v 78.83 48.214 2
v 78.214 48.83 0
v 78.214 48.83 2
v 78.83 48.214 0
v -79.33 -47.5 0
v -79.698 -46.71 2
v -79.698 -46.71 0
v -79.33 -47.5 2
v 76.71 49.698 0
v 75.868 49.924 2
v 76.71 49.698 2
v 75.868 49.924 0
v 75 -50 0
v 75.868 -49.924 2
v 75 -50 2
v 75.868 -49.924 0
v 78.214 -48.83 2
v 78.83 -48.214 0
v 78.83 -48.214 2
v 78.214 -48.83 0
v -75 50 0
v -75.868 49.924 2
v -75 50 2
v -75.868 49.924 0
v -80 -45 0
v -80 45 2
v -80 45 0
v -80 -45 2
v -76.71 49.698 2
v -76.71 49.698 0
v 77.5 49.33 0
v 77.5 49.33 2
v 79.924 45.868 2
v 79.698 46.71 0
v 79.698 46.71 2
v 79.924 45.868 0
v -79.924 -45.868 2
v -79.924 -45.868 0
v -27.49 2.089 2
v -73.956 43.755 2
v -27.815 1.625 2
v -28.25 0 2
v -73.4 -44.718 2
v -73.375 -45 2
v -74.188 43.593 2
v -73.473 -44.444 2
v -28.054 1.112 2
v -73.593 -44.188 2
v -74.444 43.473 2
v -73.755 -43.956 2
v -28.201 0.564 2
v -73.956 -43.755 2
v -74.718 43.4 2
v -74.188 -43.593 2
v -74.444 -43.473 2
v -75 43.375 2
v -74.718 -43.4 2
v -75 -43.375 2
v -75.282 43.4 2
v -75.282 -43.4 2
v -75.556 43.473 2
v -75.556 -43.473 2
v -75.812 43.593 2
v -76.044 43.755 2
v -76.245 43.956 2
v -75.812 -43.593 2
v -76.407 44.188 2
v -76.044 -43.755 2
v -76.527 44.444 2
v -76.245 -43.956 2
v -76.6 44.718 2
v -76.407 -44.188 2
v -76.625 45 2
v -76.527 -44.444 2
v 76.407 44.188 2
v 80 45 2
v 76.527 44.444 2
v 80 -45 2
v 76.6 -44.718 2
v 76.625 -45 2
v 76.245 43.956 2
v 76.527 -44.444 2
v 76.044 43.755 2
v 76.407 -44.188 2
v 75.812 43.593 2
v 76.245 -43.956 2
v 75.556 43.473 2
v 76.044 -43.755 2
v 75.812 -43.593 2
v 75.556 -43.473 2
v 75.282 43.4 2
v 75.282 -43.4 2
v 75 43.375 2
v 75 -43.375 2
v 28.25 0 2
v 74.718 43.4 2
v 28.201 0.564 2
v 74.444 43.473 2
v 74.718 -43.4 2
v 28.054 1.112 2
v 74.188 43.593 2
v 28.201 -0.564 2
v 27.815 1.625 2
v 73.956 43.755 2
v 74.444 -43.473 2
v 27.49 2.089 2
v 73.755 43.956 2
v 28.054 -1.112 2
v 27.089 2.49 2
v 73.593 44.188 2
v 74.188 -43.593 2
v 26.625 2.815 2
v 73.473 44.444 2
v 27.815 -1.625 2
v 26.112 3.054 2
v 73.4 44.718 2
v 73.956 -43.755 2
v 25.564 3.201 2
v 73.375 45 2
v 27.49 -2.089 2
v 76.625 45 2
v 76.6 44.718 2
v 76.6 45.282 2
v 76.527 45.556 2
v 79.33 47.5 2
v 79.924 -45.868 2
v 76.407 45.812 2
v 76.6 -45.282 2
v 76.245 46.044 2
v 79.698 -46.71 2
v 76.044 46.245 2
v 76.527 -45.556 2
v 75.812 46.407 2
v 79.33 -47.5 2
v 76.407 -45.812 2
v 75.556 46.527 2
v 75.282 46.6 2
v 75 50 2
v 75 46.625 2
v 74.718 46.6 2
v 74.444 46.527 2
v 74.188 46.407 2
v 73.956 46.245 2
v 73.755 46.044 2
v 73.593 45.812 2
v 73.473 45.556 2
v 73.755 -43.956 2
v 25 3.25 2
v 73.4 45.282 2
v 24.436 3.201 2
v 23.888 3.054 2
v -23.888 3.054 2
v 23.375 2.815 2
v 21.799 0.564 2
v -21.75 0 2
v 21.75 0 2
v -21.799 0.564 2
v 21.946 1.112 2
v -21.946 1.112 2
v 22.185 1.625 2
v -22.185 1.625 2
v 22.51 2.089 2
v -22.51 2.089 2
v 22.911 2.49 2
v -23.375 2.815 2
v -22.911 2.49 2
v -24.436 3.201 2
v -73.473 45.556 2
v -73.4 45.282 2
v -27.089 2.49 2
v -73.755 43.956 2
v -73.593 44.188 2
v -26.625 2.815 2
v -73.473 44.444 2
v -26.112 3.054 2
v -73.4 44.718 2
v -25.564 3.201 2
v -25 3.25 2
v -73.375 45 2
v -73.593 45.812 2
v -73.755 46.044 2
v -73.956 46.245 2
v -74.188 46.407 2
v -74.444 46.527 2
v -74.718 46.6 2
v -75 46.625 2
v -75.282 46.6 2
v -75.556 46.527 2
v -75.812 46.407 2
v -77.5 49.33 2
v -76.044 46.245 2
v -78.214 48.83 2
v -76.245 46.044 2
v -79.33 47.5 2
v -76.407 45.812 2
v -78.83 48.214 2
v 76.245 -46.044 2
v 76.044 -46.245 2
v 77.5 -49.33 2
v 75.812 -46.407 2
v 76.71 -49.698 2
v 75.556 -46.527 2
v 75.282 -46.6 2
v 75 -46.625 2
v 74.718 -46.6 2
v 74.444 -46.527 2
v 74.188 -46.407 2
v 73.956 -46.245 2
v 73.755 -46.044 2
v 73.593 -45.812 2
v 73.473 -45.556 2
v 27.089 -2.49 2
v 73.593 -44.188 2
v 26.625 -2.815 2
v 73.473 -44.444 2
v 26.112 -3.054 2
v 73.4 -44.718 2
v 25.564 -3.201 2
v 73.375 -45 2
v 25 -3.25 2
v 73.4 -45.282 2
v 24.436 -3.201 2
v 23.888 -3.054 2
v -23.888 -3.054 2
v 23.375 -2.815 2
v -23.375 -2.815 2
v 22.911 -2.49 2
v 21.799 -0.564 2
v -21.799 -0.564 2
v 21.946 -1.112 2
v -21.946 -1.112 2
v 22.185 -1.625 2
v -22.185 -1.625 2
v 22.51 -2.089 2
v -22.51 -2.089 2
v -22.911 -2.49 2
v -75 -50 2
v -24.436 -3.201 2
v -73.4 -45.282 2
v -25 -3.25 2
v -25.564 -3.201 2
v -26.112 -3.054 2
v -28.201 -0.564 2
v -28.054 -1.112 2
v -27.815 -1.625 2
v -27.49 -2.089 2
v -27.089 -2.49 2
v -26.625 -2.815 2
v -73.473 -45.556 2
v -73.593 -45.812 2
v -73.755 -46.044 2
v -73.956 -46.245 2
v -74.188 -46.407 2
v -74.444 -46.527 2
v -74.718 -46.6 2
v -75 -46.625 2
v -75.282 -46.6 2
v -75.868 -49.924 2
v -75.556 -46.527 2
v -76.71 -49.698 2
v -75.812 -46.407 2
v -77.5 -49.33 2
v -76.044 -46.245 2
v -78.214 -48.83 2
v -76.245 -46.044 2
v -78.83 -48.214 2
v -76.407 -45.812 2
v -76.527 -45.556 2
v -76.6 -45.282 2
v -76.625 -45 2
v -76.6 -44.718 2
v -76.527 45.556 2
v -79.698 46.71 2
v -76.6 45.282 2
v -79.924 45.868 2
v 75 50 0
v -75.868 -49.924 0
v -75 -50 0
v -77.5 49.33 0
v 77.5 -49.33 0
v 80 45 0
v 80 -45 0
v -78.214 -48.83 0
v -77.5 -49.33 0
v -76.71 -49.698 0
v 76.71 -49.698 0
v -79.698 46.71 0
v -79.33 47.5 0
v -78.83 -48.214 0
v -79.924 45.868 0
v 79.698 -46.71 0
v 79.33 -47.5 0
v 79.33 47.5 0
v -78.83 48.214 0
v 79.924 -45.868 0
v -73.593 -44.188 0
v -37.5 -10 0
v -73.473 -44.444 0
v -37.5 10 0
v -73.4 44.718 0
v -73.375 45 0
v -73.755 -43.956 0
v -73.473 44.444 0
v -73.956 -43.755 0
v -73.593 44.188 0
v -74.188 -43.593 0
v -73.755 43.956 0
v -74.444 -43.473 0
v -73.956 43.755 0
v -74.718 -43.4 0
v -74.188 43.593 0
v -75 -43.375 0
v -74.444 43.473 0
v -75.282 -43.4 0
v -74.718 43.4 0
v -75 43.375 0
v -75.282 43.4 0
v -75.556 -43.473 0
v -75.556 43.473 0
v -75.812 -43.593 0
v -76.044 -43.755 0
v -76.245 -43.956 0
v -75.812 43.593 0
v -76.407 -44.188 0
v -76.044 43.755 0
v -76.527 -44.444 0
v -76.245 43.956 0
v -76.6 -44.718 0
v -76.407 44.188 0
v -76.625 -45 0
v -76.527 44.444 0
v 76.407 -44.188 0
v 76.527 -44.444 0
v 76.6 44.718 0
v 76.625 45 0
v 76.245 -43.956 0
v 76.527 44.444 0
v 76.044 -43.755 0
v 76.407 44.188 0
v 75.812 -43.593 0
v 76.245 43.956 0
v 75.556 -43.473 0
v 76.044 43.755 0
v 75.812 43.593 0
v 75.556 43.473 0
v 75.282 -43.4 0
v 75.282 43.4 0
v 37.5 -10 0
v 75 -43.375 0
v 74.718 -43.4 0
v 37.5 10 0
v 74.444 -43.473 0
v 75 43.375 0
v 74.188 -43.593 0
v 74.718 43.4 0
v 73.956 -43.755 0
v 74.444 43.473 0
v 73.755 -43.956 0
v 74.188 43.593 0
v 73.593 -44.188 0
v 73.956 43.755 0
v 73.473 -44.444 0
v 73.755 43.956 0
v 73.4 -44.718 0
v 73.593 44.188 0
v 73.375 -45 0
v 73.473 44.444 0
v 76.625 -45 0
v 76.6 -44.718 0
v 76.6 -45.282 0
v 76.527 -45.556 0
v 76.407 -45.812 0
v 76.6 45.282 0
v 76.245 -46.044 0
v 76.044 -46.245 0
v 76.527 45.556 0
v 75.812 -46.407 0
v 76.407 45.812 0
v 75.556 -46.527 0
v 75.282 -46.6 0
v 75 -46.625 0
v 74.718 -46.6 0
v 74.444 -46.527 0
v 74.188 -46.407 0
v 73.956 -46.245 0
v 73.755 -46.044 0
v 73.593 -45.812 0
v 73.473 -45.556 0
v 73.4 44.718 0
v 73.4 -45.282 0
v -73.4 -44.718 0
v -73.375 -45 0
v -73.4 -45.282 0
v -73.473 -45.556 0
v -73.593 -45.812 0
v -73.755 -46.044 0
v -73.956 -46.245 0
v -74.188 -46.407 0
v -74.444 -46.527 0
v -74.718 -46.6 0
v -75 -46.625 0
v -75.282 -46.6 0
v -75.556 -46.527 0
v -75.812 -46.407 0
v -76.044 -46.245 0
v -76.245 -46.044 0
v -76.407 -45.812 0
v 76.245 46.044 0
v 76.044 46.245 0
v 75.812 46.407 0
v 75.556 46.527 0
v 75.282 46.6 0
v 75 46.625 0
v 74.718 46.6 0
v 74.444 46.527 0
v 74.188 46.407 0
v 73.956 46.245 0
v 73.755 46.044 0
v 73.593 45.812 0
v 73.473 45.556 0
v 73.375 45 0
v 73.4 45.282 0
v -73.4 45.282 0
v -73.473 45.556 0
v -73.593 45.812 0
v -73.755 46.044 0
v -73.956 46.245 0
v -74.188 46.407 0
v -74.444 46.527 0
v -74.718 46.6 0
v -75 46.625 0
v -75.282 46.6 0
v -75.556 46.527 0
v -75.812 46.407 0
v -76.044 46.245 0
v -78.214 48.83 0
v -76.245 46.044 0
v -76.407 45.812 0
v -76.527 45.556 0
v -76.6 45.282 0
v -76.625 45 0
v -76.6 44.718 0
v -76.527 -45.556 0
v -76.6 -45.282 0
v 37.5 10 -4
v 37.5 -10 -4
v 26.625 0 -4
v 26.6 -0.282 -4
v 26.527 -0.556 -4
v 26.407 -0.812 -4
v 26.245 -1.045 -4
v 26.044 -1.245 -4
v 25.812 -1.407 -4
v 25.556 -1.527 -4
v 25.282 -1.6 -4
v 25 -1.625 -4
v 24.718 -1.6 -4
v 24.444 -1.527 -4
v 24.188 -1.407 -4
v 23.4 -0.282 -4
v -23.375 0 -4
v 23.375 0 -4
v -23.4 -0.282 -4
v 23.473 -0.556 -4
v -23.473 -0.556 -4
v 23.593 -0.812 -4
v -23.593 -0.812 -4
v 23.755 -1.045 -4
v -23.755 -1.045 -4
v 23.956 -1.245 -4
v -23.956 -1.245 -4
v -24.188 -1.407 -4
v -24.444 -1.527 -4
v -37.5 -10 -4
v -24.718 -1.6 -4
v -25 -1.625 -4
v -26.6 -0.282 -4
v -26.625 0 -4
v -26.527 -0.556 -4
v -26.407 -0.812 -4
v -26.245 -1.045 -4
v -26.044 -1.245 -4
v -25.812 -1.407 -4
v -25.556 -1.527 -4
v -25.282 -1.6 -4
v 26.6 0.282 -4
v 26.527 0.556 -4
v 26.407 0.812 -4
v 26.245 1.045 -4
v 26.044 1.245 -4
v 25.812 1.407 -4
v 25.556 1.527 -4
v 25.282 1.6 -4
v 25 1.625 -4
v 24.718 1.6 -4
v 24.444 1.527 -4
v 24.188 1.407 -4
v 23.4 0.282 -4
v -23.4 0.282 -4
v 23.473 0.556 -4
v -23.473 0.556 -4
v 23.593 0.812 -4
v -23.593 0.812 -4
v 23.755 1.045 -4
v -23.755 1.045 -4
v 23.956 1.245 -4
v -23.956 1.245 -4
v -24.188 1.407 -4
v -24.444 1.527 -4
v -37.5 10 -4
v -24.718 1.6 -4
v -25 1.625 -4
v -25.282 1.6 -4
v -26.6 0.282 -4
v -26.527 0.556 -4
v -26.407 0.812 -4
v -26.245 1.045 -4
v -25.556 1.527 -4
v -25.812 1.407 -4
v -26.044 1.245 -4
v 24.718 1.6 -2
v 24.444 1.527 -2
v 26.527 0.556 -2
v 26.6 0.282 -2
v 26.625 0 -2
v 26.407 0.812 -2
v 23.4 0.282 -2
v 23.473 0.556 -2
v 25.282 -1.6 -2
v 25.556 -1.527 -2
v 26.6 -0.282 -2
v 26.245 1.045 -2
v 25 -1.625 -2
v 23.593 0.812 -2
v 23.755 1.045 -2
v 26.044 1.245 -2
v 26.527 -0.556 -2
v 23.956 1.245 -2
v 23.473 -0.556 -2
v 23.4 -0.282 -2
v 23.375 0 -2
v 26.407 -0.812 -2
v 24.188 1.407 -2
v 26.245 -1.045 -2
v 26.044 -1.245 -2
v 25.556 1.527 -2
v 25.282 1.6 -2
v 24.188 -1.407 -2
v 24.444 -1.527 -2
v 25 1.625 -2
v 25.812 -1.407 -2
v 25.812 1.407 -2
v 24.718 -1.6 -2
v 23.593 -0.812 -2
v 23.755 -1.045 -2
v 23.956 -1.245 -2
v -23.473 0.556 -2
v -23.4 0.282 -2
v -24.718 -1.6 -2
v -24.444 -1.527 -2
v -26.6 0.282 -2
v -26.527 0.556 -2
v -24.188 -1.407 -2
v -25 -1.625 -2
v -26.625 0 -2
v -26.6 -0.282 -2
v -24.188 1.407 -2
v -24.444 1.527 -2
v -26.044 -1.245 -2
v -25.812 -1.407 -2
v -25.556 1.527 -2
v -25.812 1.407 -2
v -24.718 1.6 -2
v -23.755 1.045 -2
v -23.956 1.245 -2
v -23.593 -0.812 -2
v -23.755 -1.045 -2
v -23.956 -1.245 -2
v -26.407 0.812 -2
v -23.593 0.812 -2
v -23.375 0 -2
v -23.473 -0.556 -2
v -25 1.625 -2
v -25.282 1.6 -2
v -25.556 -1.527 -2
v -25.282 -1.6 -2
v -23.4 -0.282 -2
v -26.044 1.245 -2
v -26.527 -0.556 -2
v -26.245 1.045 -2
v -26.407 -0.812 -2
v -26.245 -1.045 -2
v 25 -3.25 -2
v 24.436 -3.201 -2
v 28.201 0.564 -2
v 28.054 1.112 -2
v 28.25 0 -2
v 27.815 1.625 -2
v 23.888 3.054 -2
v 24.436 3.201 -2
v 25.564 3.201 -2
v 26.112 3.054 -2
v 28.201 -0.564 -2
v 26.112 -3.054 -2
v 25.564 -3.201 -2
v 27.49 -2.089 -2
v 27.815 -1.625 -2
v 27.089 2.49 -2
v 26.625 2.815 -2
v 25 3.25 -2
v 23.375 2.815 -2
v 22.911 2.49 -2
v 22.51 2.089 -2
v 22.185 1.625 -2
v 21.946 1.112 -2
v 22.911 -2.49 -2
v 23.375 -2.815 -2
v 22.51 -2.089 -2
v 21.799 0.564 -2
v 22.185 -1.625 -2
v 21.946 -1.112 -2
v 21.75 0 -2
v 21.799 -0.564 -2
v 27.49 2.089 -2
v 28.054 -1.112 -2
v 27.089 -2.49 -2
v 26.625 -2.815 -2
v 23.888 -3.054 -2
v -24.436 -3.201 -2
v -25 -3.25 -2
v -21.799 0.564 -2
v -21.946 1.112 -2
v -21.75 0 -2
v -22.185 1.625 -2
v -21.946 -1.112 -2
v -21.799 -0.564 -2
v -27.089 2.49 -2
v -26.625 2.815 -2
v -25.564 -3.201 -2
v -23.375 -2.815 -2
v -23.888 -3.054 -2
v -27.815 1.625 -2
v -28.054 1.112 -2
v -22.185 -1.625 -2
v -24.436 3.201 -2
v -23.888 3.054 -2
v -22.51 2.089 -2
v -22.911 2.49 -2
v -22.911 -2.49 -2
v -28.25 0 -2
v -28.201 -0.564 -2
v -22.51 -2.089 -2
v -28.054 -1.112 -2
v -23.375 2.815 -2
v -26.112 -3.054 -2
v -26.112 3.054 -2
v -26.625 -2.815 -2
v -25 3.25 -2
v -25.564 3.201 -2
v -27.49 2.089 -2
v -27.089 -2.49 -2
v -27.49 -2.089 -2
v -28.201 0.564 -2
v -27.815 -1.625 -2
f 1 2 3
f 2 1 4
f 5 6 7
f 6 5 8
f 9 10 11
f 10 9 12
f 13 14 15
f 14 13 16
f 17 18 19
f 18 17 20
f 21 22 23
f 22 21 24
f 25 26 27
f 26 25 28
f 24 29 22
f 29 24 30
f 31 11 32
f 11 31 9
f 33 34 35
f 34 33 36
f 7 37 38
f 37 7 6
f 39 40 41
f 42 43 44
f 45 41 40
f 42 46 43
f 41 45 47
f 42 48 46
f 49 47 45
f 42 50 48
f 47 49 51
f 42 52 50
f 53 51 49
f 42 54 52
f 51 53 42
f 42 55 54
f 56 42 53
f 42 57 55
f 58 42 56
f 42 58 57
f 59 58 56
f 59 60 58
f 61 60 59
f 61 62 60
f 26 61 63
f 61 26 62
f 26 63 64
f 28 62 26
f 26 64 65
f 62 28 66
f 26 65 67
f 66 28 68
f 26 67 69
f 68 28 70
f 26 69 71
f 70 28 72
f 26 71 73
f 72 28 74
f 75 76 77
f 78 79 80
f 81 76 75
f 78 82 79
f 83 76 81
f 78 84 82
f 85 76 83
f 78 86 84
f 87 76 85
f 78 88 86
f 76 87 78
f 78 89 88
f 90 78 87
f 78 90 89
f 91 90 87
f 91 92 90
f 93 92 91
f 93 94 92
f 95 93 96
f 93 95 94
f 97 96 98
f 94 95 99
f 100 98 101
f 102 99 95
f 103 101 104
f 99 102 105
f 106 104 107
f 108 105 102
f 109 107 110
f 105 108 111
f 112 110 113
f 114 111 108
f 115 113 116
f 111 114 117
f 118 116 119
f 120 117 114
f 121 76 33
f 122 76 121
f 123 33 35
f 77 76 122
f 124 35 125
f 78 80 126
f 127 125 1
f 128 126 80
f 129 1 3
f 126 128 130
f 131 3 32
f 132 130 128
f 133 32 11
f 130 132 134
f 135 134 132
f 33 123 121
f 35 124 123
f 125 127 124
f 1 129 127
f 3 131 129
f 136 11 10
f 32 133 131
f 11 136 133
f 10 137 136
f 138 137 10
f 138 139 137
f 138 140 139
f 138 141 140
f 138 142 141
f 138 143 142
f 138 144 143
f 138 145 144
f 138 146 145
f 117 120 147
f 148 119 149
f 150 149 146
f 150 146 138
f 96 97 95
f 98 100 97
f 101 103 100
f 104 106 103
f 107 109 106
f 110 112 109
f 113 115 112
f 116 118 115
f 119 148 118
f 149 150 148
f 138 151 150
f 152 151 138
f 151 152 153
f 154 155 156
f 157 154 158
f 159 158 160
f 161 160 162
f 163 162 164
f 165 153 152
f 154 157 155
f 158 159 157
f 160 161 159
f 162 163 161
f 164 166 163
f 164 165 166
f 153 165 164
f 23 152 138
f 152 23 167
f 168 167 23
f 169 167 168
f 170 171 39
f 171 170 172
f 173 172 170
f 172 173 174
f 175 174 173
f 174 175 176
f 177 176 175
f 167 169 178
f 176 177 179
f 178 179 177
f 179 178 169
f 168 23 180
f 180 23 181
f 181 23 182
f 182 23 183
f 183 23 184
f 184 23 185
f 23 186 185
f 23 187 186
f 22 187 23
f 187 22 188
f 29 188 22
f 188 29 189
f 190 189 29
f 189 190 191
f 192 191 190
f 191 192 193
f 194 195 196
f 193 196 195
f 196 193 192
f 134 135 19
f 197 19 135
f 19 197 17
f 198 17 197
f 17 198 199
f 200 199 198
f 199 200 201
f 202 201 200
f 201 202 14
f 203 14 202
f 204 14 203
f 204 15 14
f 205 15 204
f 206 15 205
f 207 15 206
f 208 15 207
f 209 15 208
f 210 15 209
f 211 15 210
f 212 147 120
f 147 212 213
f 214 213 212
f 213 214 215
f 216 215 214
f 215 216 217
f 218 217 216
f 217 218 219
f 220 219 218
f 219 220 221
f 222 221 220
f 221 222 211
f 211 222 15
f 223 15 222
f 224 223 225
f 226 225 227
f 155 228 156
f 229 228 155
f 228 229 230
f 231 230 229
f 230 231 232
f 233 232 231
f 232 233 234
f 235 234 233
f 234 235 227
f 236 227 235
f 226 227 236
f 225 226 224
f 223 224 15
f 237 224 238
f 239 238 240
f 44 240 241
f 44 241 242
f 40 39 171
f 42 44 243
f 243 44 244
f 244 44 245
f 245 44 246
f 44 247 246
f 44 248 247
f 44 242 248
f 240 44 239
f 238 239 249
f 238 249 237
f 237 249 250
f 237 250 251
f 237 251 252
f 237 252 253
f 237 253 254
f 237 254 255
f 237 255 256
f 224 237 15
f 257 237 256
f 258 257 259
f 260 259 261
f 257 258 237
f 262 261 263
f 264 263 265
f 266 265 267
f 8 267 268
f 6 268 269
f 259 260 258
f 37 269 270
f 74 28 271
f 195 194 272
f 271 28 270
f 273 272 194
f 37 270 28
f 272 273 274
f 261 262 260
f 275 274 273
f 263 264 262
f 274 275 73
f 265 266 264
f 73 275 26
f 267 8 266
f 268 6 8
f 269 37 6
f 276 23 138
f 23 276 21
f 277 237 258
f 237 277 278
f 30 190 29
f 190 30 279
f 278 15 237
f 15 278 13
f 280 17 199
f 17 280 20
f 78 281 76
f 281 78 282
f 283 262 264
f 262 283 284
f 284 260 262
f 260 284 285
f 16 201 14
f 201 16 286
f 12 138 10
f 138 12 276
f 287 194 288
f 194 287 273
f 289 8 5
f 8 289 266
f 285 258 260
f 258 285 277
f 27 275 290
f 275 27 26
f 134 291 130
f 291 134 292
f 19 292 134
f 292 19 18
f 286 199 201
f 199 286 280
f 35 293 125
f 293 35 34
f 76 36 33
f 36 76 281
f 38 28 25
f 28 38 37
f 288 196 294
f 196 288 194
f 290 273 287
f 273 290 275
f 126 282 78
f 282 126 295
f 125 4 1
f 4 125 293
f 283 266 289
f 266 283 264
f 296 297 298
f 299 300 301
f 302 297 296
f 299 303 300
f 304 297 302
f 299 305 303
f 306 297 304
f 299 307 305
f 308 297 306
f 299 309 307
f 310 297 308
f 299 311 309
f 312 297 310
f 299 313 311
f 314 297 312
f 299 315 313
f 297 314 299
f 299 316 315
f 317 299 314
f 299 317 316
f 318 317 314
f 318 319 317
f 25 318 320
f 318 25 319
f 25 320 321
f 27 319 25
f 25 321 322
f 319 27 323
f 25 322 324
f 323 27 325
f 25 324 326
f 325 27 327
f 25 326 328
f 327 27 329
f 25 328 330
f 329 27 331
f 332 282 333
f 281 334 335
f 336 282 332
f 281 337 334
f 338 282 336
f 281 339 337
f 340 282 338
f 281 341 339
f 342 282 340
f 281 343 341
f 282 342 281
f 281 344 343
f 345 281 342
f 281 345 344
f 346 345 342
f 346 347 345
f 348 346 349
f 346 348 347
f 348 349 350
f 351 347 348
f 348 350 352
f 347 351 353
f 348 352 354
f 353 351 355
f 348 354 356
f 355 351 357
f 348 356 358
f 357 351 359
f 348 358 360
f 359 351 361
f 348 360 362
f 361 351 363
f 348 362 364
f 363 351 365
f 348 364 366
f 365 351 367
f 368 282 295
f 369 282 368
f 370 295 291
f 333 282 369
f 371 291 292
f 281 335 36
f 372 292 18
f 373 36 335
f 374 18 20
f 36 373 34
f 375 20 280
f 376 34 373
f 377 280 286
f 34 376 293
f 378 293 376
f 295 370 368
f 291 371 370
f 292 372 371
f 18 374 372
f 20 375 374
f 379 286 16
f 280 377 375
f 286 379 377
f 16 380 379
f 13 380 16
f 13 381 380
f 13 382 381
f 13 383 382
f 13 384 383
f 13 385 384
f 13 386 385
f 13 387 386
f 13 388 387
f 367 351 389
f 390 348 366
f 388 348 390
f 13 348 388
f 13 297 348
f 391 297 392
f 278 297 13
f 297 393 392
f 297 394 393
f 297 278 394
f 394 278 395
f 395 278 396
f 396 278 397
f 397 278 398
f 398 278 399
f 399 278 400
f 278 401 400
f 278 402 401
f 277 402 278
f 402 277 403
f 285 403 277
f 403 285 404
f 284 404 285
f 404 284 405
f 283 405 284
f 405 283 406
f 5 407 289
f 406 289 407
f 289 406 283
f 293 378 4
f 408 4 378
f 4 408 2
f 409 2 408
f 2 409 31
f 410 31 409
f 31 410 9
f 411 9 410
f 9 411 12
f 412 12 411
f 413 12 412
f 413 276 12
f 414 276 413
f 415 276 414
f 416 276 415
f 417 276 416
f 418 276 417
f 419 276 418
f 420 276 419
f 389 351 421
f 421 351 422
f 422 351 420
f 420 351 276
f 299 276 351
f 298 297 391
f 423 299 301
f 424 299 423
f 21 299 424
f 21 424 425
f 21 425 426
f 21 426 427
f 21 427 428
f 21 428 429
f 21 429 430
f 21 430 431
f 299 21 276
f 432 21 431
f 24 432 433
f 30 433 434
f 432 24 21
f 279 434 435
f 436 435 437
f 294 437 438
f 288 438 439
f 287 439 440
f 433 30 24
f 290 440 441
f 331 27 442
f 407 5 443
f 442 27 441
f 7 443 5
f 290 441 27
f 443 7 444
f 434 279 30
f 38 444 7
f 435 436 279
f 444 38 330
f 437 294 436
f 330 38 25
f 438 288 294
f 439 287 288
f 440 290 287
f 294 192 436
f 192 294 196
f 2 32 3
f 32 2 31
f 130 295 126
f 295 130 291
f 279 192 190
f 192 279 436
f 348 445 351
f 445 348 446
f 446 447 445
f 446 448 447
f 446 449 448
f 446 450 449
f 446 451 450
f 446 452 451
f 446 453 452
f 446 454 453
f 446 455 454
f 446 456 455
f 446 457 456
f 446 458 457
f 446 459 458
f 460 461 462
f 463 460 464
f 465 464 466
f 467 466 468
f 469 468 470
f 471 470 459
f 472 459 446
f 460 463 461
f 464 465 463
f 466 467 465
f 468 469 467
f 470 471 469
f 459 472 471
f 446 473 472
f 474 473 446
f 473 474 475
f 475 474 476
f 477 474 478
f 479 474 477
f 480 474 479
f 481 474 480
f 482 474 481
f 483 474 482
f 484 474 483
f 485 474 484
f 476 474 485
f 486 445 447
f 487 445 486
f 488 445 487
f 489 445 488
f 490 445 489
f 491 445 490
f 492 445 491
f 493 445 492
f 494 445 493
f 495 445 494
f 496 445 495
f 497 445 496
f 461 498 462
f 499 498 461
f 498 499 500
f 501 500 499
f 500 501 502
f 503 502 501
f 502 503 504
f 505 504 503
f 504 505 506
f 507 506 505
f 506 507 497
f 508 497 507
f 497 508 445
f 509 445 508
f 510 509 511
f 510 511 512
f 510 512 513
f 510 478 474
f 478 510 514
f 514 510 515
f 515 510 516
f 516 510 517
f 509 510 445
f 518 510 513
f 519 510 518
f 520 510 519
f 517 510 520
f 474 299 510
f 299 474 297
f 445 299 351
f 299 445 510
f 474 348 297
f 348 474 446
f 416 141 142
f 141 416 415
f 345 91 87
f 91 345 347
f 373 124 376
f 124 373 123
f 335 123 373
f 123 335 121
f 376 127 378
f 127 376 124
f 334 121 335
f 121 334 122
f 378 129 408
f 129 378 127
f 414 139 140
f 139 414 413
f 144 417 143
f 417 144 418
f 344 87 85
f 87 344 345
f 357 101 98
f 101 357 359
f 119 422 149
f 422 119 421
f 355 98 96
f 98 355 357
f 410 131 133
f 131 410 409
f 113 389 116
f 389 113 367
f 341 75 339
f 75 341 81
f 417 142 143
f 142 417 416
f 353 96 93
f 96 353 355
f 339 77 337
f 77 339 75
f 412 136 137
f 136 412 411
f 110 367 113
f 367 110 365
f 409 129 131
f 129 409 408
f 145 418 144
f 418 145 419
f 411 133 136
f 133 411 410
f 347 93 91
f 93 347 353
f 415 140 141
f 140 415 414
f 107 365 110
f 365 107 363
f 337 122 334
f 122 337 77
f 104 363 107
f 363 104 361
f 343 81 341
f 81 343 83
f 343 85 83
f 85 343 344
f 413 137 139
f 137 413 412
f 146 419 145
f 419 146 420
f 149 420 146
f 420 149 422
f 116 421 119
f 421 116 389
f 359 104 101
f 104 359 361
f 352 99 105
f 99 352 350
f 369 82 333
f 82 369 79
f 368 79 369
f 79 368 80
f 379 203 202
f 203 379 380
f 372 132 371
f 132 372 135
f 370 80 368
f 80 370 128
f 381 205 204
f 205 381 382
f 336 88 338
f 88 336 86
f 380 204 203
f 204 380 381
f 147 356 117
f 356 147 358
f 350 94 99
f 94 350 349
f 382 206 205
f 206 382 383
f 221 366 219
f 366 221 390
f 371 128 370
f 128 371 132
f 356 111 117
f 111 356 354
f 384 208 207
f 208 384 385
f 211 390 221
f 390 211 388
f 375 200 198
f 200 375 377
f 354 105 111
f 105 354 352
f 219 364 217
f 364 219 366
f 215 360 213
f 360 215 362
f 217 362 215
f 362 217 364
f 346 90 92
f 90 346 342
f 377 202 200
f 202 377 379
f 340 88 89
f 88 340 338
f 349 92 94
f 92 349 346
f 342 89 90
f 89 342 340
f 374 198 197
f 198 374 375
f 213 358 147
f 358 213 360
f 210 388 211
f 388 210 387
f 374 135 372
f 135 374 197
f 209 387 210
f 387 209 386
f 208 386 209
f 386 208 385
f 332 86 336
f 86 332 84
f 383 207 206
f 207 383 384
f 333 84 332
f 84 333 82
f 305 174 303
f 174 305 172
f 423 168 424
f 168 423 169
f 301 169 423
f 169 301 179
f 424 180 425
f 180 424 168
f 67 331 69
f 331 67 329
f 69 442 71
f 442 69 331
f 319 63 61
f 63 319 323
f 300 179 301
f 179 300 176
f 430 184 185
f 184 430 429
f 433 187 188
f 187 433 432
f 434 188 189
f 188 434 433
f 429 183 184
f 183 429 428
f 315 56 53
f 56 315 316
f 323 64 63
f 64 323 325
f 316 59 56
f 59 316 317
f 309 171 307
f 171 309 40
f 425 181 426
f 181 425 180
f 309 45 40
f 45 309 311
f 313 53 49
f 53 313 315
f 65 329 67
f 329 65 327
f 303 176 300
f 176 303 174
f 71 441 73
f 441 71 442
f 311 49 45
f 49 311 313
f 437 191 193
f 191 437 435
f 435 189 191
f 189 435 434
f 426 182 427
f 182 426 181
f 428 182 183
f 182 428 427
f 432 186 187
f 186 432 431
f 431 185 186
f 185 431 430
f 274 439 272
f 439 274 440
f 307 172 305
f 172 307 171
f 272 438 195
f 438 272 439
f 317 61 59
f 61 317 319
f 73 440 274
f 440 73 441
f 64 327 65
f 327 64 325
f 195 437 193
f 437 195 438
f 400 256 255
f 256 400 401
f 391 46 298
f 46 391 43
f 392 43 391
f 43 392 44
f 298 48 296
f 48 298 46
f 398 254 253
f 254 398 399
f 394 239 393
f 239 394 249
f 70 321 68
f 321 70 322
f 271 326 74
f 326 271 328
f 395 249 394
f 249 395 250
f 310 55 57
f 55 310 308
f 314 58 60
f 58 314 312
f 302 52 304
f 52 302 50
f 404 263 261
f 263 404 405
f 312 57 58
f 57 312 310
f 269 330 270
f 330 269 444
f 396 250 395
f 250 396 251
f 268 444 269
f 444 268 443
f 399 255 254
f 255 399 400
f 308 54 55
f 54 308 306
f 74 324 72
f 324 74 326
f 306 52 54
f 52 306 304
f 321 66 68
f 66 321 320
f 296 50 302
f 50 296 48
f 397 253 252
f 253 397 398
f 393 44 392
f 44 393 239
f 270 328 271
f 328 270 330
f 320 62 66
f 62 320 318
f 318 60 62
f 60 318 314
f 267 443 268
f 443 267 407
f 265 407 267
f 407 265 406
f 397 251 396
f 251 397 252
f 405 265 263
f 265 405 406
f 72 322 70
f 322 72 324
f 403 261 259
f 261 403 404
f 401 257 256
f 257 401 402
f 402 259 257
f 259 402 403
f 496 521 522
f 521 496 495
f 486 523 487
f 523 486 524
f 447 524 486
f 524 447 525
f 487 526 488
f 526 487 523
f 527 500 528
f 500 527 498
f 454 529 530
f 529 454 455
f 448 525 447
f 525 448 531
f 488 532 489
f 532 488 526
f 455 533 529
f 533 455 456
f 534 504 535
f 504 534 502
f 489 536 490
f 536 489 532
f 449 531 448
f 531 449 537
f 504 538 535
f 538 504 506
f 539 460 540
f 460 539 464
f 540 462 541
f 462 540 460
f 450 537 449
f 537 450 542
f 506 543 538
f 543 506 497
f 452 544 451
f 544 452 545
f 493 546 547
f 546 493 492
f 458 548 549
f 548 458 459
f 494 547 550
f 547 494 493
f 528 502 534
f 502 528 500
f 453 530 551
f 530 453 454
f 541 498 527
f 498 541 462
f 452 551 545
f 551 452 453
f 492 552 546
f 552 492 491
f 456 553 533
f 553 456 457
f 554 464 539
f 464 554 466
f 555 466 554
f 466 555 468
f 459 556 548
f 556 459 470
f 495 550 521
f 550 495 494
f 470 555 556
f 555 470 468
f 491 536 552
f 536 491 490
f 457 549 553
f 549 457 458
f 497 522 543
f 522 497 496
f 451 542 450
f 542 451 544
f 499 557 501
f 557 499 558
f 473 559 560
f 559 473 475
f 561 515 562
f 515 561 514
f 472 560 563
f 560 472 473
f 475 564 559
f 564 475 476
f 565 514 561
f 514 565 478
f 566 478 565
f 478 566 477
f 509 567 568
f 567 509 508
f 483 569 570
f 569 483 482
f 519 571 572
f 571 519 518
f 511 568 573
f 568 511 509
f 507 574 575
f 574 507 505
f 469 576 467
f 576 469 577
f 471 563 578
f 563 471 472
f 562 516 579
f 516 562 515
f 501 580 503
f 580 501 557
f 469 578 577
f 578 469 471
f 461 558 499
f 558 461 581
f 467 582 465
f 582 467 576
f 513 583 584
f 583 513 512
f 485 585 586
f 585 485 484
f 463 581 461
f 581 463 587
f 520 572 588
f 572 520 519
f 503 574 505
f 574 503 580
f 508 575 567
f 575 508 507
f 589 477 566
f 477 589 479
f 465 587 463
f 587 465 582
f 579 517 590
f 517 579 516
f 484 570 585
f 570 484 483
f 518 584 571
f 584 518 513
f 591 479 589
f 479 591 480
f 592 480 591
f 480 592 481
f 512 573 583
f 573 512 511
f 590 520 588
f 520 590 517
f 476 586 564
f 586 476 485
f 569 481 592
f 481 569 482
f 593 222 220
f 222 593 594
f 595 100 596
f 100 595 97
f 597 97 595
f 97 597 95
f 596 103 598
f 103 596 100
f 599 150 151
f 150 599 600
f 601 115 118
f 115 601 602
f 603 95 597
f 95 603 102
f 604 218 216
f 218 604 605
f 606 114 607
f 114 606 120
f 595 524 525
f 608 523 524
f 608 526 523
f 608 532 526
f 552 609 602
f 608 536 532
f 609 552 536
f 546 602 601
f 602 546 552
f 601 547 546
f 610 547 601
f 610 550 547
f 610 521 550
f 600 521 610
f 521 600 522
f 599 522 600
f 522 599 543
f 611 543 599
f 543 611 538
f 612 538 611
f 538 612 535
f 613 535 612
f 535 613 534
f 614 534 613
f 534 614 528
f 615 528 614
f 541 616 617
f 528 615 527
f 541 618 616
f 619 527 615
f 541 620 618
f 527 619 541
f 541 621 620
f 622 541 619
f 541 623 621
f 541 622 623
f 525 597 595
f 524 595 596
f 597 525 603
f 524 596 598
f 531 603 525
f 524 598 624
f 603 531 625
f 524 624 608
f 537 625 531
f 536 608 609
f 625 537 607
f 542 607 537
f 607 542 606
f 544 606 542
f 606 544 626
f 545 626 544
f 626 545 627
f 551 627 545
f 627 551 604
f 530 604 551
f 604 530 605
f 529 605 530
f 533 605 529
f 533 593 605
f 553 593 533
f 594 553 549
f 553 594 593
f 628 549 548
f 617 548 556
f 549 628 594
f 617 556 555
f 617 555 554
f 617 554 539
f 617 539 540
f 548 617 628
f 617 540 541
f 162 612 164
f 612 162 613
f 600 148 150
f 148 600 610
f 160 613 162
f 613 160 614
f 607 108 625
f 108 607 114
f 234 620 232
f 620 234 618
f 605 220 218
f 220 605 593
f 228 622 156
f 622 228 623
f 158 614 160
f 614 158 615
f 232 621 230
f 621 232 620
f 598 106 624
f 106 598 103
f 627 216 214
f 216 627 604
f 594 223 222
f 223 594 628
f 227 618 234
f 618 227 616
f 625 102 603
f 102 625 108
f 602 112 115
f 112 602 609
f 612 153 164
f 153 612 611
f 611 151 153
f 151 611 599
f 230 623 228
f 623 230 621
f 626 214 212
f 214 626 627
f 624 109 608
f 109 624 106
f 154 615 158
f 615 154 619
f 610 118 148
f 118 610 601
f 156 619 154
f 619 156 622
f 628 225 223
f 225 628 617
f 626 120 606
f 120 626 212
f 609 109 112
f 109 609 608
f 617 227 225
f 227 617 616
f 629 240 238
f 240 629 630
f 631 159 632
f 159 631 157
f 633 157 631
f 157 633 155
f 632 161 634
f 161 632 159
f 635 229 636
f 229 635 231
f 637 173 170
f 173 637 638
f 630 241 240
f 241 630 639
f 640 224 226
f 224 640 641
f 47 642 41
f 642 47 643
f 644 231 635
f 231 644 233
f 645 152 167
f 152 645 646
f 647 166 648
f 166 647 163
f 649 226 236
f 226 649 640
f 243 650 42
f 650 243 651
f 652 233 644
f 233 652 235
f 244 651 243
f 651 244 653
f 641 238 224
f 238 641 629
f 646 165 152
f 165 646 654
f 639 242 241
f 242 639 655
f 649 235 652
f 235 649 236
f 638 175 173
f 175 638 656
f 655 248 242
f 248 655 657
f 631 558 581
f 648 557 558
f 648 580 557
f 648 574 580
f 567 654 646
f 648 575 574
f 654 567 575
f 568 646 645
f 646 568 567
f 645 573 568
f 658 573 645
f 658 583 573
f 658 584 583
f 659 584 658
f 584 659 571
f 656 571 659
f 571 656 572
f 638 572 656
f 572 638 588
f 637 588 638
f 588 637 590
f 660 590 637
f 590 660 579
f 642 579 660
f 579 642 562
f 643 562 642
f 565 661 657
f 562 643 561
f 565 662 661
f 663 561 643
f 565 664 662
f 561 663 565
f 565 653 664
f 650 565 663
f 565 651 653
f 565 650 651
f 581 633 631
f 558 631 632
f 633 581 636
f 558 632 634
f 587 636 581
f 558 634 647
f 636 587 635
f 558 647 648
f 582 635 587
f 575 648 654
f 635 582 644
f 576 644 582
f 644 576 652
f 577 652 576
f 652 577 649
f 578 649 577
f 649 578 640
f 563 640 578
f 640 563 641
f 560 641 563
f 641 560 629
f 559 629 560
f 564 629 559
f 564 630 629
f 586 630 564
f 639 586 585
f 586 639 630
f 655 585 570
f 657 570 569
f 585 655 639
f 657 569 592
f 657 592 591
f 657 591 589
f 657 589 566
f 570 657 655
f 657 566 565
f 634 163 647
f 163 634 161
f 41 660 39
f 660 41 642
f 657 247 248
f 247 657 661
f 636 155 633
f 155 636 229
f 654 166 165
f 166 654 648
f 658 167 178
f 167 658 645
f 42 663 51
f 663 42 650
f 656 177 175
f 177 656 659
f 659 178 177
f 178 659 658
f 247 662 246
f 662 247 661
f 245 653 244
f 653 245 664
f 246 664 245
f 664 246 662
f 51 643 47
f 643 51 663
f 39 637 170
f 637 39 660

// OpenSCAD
/*
 * Machdyne PNP
 * Copyright (c) 2023 Lone Dynamics Corporation. All rights reserved.
 *
 * Mainboard Enclosure (currently it's just a stand that mounts on a rail)
 *
 */

$fn = 36;

mbe();

module mbe() {

//	translate([0,0,5]) color([0,1.0,0]) cube([160,100,2], center=true);
	
	difference() {
		
		union() {
			translate([-160/2,-100/2,0]) roundedcube(160,100,2,5);
			translate([0,0,-2]) cube([75,20,4], center=true);
		}
		
		translate([75,45,-5]) cylinder(d=3.25, h=10);
		translate([75,-45,-5]) cylinder(d=3.25, h=10);
		translate([-75,45,-5]) cylinder(d=3.25, h=10);
		translate([-75,-45,-5]) cylinder(d=3.25, h=10);
		
		translate([25,0,-25]) cylinder(d=3.25, h=100);
		translate([-25,0,-25]) cylinder(d=3.25, h=100);

		translate([25,0,3]) cylinder(d=6.5, h=10, center=true);
		translate([-25,0,3]) cylinder(d=6.5, h=10, center=true);
		
	}
	
}

// https://gist.github.com/tinkerology/ae257c5340a33ee2f149ff3ae97d9826
module roundedcube(xx, yy, height, radius)
{
    translate([0,0,height/2])
    hull()
    {
        translate([radius,radius,0])
        cylinder(height,radius,radius,true);

        translate([xx-radius,radius,0])
        cylinder(height,radius,radius,true);

        translate([xx-radius,yy-radius,0])
        cylinder(height,radius,radius,true);

        translate([radius,yy-radius,0])
        cylinder(height,radius,radius,true);
    }
}
